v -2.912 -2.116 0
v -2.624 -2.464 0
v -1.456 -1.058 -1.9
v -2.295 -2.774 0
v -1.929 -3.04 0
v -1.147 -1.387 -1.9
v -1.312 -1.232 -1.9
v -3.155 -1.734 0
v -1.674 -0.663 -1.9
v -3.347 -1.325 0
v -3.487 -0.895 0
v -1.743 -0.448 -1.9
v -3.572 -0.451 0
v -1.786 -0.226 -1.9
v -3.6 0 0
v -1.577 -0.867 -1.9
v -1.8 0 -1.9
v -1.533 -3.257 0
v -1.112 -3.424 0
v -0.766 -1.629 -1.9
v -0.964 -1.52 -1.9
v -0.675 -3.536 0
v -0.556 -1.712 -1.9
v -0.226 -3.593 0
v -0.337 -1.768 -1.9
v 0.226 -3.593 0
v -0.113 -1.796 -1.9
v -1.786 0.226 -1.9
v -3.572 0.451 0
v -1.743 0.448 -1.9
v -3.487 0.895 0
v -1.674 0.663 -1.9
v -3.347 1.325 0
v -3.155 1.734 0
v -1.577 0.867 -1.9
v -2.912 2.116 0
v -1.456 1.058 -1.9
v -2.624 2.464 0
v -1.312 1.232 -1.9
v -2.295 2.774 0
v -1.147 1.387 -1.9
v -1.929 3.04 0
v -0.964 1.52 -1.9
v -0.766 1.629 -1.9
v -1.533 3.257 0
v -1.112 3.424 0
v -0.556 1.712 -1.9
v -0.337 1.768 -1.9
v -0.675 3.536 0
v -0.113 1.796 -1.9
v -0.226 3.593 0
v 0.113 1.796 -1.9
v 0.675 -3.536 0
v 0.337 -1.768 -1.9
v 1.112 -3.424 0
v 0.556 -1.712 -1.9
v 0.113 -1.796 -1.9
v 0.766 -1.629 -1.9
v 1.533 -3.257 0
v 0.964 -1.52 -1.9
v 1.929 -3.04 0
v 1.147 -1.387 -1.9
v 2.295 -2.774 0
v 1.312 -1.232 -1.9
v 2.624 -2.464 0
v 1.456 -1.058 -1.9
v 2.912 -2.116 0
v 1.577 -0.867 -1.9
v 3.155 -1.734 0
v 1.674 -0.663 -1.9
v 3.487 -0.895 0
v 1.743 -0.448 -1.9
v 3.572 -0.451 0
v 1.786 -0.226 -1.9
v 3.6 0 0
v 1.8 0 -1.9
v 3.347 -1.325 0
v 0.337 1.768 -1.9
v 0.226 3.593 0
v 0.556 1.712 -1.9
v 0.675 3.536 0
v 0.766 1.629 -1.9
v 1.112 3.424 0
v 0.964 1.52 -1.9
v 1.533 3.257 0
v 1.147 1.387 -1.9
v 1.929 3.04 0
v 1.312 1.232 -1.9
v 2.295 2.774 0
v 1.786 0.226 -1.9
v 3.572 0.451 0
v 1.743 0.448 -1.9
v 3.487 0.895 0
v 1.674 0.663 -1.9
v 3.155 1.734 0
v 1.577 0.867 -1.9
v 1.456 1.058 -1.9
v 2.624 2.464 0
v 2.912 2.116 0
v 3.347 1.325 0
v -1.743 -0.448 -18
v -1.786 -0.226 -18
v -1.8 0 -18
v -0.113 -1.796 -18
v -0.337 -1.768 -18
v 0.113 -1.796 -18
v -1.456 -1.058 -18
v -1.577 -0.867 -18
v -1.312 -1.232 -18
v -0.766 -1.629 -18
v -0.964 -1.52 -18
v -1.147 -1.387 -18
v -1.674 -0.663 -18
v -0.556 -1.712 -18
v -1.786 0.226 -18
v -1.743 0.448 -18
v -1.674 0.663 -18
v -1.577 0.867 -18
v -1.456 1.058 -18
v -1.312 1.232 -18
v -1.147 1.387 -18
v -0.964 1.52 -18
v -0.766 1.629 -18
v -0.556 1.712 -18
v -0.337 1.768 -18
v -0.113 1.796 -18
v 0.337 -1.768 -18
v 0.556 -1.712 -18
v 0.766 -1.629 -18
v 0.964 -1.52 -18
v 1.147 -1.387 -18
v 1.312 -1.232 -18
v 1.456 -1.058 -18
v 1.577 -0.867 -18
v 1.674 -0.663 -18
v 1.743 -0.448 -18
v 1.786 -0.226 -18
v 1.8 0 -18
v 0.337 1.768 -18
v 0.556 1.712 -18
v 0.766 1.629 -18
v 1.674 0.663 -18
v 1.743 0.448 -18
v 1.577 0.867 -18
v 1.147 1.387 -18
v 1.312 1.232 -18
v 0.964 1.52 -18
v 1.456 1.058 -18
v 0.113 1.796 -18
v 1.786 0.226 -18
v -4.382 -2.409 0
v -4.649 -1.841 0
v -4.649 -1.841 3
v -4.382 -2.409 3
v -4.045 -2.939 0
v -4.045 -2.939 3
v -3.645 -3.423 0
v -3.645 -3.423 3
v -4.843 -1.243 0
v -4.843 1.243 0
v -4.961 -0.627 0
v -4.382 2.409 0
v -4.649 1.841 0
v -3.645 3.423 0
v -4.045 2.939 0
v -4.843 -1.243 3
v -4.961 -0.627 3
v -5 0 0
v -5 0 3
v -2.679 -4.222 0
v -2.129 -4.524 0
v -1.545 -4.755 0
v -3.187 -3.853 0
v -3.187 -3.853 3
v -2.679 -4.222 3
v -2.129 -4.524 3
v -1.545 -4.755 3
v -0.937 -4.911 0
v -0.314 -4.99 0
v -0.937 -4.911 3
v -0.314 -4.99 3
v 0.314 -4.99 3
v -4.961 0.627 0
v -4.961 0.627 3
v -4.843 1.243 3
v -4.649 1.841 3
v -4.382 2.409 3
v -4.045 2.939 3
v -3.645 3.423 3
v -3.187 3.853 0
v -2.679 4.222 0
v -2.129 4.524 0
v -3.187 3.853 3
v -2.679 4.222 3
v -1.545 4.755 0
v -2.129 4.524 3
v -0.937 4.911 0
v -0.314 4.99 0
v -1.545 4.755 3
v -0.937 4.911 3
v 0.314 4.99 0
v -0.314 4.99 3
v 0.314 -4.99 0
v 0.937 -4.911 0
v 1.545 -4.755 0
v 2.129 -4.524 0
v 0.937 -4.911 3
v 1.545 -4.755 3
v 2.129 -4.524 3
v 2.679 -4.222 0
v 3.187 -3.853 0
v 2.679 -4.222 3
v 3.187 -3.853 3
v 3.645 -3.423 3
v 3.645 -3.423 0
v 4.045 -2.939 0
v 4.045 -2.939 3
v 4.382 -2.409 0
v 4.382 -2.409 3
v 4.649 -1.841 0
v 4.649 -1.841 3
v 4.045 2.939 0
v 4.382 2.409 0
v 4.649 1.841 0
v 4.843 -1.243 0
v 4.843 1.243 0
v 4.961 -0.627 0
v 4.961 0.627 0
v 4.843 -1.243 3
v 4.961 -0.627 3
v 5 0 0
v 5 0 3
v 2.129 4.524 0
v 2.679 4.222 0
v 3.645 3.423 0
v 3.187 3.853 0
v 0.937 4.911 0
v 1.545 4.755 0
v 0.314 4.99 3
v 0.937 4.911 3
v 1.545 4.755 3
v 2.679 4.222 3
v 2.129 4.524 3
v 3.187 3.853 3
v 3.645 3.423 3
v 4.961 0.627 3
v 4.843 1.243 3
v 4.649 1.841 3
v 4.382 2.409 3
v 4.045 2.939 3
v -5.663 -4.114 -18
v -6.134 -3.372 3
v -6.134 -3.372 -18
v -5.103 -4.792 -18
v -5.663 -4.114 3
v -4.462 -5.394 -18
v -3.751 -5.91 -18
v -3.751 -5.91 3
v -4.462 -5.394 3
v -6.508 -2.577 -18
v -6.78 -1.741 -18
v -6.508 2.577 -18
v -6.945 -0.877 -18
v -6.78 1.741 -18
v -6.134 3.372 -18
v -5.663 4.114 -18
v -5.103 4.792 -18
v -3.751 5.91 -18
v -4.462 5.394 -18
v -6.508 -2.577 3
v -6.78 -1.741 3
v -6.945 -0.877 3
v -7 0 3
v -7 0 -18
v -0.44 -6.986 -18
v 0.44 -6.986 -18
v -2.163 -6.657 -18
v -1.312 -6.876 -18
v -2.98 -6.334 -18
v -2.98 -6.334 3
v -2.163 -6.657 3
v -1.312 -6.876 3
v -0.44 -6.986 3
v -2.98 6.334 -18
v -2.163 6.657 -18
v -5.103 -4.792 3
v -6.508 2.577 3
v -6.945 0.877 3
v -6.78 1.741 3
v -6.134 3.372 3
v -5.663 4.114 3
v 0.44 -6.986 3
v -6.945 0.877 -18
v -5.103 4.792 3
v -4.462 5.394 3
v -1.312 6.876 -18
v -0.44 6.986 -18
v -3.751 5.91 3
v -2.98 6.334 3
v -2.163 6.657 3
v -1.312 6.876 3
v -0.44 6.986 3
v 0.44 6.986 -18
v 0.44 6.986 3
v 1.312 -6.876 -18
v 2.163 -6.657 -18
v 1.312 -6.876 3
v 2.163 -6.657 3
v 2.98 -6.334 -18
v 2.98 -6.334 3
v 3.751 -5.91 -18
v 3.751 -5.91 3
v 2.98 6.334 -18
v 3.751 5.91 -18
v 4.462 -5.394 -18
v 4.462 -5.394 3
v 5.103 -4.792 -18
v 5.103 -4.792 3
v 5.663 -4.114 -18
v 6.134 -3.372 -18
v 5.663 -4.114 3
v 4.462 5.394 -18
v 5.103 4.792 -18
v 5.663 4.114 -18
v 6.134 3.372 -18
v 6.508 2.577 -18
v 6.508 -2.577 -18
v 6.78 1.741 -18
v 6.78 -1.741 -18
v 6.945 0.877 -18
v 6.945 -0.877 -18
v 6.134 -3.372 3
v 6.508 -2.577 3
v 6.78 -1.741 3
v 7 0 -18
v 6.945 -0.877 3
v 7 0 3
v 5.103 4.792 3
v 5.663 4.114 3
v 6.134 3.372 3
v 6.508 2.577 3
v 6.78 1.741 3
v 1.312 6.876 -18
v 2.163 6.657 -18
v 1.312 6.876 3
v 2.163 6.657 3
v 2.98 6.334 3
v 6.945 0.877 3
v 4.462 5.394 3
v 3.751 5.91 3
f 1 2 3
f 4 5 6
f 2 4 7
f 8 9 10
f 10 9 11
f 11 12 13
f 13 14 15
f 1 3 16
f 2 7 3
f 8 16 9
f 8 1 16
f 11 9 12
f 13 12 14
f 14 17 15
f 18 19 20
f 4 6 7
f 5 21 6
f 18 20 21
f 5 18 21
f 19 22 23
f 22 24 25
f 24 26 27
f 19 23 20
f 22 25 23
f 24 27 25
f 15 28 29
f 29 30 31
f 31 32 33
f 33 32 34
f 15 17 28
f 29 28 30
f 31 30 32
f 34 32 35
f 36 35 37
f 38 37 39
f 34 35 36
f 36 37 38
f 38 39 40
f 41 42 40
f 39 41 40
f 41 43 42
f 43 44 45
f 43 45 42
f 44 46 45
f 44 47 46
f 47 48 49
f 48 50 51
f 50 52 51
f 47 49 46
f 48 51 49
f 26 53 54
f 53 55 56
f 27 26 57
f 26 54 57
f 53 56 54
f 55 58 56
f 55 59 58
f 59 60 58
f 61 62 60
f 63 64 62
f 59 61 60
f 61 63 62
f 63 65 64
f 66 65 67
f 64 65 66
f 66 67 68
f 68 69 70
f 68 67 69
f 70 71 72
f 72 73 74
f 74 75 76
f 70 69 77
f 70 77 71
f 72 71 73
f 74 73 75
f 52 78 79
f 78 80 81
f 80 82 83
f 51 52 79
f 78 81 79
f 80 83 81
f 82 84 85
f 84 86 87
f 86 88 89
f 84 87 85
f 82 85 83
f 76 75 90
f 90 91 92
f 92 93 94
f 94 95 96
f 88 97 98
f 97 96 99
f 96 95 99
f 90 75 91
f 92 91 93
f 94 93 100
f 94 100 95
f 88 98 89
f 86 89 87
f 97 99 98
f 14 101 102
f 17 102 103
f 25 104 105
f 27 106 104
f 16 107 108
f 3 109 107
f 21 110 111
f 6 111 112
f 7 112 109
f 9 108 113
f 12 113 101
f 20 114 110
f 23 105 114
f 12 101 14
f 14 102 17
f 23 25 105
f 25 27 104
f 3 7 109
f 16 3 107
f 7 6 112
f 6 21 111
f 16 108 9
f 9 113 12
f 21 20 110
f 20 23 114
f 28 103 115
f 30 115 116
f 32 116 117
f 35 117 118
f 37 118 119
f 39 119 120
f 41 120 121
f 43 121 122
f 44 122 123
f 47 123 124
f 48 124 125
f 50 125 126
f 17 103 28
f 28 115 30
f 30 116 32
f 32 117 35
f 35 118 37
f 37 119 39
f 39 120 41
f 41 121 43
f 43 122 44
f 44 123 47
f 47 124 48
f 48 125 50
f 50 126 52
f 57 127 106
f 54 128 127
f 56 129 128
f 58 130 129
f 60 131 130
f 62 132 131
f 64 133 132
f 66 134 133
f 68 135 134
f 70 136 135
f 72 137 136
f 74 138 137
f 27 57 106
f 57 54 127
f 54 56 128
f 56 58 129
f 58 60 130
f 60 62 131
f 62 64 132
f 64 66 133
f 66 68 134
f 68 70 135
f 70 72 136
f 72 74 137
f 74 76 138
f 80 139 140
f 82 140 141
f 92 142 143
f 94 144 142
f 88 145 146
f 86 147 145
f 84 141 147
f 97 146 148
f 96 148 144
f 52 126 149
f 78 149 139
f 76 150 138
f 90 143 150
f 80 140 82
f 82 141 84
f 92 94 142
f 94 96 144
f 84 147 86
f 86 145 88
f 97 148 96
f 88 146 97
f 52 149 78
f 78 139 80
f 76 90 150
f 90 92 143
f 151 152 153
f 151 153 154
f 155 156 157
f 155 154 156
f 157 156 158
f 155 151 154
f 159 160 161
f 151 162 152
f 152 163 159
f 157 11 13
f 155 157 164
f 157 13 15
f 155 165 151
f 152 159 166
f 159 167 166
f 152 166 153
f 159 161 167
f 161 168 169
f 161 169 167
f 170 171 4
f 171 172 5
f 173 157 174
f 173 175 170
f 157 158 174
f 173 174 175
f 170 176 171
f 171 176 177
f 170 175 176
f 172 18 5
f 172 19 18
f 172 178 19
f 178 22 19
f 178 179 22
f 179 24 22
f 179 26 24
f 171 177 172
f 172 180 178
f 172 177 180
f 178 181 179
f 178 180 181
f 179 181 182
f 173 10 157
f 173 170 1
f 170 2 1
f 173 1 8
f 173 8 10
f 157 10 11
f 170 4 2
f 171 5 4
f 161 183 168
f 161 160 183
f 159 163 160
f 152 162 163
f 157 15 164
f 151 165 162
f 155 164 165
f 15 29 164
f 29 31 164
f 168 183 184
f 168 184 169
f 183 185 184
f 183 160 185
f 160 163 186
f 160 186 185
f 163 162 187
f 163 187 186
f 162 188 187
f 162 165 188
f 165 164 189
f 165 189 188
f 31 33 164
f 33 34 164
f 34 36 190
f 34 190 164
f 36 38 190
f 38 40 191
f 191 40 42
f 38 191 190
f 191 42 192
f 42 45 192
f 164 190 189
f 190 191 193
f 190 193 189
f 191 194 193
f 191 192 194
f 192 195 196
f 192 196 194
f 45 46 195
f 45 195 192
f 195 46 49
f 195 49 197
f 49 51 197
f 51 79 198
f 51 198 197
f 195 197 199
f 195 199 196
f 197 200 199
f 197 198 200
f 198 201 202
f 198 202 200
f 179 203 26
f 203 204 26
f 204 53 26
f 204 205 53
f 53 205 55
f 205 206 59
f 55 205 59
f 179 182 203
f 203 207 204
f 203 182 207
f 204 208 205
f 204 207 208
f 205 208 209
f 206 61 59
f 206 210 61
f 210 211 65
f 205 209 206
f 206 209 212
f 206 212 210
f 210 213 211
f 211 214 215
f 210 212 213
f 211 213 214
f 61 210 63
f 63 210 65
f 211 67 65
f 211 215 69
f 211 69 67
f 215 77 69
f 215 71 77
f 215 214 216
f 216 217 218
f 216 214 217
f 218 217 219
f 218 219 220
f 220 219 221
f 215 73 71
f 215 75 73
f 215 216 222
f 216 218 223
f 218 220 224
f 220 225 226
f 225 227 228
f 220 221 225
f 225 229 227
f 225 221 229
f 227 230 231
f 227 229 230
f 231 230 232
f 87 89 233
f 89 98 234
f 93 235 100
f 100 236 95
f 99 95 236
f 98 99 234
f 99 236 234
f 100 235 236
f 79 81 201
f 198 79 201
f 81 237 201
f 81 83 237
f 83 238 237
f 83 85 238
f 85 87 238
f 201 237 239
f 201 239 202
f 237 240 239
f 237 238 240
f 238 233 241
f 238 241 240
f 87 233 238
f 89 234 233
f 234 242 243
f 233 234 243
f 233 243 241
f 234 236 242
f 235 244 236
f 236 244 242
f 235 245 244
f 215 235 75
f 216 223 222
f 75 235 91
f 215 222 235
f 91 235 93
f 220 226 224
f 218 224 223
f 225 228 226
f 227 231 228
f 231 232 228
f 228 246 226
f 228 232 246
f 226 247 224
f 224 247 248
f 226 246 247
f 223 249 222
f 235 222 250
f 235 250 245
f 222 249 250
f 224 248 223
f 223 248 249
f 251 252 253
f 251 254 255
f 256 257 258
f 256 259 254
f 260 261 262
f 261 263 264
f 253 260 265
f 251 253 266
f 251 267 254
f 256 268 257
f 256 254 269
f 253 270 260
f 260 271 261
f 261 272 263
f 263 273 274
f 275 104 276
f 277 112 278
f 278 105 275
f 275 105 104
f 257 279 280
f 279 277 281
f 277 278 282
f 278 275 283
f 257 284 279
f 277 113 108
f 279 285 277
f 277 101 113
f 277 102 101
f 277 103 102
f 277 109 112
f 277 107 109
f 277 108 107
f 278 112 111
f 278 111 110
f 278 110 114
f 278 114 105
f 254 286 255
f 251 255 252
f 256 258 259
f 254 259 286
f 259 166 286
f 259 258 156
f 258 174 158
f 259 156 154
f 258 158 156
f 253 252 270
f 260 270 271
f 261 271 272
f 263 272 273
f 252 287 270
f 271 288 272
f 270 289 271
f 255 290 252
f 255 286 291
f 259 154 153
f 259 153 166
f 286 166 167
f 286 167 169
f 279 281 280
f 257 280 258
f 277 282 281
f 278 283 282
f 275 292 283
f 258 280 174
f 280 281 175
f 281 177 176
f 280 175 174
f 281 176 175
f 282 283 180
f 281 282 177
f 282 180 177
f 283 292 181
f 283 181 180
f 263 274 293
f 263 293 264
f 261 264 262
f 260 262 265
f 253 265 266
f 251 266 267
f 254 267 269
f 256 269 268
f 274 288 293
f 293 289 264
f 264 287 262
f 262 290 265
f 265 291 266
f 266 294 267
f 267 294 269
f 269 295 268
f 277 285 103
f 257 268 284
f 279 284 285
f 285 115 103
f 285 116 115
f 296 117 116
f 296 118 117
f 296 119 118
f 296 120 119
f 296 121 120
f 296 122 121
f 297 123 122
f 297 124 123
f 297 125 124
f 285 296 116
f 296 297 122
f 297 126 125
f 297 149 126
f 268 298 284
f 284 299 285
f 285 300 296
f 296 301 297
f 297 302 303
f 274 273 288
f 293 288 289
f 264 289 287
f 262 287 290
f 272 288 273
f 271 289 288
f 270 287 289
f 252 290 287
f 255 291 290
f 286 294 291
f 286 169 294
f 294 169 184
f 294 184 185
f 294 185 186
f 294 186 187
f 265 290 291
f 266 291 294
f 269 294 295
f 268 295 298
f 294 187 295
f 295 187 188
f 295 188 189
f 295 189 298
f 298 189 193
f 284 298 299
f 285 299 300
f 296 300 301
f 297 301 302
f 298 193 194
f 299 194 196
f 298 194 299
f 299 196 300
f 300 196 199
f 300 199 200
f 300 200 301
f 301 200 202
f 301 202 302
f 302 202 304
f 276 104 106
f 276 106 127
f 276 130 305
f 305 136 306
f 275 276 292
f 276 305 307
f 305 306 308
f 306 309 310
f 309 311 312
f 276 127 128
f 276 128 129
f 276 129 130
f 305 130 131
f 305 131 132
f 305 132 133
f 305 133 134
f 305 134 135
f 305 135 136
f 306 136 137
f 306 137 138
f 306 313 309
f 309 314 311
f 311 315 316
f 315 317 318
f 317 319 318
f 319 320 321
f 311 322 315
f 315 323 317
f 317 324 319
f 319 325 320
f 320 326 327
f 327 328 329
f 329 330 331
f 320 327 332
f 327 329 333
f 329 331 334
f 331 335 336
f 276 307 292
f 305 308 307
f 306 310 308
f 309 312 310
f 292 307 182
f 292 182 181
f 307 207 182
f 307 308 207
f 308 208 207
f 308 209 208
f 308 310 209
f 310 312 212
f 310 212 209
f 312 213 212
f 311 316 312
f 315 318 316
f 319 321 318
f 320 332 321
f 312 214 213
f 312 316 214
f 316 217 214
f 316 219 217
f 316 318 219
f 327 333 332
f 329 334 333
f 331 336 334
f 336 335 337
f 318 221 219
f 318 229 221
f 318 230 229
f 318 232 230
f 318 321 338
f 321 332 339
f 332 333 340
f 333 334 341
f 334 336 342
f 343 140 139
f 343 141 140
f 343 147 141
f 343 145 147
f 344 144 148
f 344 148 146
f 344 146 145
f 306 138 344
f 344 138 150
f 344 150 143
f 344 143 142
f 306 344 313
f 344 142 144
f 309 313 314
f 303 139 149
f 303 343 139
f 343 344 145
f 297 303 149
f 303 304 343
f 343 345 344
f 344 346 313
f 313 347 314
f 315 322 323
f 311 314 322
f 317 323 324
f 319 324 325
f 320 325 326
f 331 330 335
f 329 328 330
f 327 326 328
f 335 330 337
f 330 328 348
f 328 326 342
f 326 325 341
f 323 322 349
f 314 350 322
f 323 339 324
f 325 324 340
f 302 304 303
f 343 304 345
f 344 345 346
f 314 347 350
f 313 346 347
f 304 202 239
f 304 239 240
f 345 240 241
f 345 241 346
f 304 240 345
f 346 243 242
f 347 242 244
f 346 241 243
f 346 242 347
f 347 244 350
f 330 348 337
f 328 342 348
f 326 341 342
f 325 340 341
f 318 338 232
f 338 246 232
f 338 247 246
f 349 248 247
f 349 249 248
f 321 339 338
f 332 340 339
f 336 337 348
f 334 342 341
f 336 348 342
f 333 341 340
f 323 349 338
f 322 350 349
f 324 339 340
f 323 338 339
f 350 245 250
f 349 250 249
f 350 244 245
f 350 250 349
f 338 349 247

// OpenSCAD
$fn = 50;


difference() {
	union() {
		translate(v = [0, 0, -18.0000000000]) {
			cylinder(h = 21, r = 7.0000000000);
		}
	}
	union() {
		translate(v = [0, 0, 0]) {
			rotate(a = [0, 0, 0]) {
				difference() {
					union() {
						translate(v = [0, 0, -21.0000000000]) {
							cylinder(h = 21, r = 1.5000000000);
						}
						translate(v = [0, 0, -1.9000000000]) {
							cylinder(h = 1.9000000000, r1 = 1.8000000000, r2 = 3.6000000000);
						}
						translate(v = [0, 0, -21.0000000000]) {
							cylinder(h = 21, r = 1.8000000000);
						}
						translate(v = [0, 0, -21.0000000000]) {
							cylinder(h = 21, r = 1.5000000000);
						}
					}
					union();
				}
			}
		}
		#cylinder(h = 3, r = 5.0000000000);
	}
}
